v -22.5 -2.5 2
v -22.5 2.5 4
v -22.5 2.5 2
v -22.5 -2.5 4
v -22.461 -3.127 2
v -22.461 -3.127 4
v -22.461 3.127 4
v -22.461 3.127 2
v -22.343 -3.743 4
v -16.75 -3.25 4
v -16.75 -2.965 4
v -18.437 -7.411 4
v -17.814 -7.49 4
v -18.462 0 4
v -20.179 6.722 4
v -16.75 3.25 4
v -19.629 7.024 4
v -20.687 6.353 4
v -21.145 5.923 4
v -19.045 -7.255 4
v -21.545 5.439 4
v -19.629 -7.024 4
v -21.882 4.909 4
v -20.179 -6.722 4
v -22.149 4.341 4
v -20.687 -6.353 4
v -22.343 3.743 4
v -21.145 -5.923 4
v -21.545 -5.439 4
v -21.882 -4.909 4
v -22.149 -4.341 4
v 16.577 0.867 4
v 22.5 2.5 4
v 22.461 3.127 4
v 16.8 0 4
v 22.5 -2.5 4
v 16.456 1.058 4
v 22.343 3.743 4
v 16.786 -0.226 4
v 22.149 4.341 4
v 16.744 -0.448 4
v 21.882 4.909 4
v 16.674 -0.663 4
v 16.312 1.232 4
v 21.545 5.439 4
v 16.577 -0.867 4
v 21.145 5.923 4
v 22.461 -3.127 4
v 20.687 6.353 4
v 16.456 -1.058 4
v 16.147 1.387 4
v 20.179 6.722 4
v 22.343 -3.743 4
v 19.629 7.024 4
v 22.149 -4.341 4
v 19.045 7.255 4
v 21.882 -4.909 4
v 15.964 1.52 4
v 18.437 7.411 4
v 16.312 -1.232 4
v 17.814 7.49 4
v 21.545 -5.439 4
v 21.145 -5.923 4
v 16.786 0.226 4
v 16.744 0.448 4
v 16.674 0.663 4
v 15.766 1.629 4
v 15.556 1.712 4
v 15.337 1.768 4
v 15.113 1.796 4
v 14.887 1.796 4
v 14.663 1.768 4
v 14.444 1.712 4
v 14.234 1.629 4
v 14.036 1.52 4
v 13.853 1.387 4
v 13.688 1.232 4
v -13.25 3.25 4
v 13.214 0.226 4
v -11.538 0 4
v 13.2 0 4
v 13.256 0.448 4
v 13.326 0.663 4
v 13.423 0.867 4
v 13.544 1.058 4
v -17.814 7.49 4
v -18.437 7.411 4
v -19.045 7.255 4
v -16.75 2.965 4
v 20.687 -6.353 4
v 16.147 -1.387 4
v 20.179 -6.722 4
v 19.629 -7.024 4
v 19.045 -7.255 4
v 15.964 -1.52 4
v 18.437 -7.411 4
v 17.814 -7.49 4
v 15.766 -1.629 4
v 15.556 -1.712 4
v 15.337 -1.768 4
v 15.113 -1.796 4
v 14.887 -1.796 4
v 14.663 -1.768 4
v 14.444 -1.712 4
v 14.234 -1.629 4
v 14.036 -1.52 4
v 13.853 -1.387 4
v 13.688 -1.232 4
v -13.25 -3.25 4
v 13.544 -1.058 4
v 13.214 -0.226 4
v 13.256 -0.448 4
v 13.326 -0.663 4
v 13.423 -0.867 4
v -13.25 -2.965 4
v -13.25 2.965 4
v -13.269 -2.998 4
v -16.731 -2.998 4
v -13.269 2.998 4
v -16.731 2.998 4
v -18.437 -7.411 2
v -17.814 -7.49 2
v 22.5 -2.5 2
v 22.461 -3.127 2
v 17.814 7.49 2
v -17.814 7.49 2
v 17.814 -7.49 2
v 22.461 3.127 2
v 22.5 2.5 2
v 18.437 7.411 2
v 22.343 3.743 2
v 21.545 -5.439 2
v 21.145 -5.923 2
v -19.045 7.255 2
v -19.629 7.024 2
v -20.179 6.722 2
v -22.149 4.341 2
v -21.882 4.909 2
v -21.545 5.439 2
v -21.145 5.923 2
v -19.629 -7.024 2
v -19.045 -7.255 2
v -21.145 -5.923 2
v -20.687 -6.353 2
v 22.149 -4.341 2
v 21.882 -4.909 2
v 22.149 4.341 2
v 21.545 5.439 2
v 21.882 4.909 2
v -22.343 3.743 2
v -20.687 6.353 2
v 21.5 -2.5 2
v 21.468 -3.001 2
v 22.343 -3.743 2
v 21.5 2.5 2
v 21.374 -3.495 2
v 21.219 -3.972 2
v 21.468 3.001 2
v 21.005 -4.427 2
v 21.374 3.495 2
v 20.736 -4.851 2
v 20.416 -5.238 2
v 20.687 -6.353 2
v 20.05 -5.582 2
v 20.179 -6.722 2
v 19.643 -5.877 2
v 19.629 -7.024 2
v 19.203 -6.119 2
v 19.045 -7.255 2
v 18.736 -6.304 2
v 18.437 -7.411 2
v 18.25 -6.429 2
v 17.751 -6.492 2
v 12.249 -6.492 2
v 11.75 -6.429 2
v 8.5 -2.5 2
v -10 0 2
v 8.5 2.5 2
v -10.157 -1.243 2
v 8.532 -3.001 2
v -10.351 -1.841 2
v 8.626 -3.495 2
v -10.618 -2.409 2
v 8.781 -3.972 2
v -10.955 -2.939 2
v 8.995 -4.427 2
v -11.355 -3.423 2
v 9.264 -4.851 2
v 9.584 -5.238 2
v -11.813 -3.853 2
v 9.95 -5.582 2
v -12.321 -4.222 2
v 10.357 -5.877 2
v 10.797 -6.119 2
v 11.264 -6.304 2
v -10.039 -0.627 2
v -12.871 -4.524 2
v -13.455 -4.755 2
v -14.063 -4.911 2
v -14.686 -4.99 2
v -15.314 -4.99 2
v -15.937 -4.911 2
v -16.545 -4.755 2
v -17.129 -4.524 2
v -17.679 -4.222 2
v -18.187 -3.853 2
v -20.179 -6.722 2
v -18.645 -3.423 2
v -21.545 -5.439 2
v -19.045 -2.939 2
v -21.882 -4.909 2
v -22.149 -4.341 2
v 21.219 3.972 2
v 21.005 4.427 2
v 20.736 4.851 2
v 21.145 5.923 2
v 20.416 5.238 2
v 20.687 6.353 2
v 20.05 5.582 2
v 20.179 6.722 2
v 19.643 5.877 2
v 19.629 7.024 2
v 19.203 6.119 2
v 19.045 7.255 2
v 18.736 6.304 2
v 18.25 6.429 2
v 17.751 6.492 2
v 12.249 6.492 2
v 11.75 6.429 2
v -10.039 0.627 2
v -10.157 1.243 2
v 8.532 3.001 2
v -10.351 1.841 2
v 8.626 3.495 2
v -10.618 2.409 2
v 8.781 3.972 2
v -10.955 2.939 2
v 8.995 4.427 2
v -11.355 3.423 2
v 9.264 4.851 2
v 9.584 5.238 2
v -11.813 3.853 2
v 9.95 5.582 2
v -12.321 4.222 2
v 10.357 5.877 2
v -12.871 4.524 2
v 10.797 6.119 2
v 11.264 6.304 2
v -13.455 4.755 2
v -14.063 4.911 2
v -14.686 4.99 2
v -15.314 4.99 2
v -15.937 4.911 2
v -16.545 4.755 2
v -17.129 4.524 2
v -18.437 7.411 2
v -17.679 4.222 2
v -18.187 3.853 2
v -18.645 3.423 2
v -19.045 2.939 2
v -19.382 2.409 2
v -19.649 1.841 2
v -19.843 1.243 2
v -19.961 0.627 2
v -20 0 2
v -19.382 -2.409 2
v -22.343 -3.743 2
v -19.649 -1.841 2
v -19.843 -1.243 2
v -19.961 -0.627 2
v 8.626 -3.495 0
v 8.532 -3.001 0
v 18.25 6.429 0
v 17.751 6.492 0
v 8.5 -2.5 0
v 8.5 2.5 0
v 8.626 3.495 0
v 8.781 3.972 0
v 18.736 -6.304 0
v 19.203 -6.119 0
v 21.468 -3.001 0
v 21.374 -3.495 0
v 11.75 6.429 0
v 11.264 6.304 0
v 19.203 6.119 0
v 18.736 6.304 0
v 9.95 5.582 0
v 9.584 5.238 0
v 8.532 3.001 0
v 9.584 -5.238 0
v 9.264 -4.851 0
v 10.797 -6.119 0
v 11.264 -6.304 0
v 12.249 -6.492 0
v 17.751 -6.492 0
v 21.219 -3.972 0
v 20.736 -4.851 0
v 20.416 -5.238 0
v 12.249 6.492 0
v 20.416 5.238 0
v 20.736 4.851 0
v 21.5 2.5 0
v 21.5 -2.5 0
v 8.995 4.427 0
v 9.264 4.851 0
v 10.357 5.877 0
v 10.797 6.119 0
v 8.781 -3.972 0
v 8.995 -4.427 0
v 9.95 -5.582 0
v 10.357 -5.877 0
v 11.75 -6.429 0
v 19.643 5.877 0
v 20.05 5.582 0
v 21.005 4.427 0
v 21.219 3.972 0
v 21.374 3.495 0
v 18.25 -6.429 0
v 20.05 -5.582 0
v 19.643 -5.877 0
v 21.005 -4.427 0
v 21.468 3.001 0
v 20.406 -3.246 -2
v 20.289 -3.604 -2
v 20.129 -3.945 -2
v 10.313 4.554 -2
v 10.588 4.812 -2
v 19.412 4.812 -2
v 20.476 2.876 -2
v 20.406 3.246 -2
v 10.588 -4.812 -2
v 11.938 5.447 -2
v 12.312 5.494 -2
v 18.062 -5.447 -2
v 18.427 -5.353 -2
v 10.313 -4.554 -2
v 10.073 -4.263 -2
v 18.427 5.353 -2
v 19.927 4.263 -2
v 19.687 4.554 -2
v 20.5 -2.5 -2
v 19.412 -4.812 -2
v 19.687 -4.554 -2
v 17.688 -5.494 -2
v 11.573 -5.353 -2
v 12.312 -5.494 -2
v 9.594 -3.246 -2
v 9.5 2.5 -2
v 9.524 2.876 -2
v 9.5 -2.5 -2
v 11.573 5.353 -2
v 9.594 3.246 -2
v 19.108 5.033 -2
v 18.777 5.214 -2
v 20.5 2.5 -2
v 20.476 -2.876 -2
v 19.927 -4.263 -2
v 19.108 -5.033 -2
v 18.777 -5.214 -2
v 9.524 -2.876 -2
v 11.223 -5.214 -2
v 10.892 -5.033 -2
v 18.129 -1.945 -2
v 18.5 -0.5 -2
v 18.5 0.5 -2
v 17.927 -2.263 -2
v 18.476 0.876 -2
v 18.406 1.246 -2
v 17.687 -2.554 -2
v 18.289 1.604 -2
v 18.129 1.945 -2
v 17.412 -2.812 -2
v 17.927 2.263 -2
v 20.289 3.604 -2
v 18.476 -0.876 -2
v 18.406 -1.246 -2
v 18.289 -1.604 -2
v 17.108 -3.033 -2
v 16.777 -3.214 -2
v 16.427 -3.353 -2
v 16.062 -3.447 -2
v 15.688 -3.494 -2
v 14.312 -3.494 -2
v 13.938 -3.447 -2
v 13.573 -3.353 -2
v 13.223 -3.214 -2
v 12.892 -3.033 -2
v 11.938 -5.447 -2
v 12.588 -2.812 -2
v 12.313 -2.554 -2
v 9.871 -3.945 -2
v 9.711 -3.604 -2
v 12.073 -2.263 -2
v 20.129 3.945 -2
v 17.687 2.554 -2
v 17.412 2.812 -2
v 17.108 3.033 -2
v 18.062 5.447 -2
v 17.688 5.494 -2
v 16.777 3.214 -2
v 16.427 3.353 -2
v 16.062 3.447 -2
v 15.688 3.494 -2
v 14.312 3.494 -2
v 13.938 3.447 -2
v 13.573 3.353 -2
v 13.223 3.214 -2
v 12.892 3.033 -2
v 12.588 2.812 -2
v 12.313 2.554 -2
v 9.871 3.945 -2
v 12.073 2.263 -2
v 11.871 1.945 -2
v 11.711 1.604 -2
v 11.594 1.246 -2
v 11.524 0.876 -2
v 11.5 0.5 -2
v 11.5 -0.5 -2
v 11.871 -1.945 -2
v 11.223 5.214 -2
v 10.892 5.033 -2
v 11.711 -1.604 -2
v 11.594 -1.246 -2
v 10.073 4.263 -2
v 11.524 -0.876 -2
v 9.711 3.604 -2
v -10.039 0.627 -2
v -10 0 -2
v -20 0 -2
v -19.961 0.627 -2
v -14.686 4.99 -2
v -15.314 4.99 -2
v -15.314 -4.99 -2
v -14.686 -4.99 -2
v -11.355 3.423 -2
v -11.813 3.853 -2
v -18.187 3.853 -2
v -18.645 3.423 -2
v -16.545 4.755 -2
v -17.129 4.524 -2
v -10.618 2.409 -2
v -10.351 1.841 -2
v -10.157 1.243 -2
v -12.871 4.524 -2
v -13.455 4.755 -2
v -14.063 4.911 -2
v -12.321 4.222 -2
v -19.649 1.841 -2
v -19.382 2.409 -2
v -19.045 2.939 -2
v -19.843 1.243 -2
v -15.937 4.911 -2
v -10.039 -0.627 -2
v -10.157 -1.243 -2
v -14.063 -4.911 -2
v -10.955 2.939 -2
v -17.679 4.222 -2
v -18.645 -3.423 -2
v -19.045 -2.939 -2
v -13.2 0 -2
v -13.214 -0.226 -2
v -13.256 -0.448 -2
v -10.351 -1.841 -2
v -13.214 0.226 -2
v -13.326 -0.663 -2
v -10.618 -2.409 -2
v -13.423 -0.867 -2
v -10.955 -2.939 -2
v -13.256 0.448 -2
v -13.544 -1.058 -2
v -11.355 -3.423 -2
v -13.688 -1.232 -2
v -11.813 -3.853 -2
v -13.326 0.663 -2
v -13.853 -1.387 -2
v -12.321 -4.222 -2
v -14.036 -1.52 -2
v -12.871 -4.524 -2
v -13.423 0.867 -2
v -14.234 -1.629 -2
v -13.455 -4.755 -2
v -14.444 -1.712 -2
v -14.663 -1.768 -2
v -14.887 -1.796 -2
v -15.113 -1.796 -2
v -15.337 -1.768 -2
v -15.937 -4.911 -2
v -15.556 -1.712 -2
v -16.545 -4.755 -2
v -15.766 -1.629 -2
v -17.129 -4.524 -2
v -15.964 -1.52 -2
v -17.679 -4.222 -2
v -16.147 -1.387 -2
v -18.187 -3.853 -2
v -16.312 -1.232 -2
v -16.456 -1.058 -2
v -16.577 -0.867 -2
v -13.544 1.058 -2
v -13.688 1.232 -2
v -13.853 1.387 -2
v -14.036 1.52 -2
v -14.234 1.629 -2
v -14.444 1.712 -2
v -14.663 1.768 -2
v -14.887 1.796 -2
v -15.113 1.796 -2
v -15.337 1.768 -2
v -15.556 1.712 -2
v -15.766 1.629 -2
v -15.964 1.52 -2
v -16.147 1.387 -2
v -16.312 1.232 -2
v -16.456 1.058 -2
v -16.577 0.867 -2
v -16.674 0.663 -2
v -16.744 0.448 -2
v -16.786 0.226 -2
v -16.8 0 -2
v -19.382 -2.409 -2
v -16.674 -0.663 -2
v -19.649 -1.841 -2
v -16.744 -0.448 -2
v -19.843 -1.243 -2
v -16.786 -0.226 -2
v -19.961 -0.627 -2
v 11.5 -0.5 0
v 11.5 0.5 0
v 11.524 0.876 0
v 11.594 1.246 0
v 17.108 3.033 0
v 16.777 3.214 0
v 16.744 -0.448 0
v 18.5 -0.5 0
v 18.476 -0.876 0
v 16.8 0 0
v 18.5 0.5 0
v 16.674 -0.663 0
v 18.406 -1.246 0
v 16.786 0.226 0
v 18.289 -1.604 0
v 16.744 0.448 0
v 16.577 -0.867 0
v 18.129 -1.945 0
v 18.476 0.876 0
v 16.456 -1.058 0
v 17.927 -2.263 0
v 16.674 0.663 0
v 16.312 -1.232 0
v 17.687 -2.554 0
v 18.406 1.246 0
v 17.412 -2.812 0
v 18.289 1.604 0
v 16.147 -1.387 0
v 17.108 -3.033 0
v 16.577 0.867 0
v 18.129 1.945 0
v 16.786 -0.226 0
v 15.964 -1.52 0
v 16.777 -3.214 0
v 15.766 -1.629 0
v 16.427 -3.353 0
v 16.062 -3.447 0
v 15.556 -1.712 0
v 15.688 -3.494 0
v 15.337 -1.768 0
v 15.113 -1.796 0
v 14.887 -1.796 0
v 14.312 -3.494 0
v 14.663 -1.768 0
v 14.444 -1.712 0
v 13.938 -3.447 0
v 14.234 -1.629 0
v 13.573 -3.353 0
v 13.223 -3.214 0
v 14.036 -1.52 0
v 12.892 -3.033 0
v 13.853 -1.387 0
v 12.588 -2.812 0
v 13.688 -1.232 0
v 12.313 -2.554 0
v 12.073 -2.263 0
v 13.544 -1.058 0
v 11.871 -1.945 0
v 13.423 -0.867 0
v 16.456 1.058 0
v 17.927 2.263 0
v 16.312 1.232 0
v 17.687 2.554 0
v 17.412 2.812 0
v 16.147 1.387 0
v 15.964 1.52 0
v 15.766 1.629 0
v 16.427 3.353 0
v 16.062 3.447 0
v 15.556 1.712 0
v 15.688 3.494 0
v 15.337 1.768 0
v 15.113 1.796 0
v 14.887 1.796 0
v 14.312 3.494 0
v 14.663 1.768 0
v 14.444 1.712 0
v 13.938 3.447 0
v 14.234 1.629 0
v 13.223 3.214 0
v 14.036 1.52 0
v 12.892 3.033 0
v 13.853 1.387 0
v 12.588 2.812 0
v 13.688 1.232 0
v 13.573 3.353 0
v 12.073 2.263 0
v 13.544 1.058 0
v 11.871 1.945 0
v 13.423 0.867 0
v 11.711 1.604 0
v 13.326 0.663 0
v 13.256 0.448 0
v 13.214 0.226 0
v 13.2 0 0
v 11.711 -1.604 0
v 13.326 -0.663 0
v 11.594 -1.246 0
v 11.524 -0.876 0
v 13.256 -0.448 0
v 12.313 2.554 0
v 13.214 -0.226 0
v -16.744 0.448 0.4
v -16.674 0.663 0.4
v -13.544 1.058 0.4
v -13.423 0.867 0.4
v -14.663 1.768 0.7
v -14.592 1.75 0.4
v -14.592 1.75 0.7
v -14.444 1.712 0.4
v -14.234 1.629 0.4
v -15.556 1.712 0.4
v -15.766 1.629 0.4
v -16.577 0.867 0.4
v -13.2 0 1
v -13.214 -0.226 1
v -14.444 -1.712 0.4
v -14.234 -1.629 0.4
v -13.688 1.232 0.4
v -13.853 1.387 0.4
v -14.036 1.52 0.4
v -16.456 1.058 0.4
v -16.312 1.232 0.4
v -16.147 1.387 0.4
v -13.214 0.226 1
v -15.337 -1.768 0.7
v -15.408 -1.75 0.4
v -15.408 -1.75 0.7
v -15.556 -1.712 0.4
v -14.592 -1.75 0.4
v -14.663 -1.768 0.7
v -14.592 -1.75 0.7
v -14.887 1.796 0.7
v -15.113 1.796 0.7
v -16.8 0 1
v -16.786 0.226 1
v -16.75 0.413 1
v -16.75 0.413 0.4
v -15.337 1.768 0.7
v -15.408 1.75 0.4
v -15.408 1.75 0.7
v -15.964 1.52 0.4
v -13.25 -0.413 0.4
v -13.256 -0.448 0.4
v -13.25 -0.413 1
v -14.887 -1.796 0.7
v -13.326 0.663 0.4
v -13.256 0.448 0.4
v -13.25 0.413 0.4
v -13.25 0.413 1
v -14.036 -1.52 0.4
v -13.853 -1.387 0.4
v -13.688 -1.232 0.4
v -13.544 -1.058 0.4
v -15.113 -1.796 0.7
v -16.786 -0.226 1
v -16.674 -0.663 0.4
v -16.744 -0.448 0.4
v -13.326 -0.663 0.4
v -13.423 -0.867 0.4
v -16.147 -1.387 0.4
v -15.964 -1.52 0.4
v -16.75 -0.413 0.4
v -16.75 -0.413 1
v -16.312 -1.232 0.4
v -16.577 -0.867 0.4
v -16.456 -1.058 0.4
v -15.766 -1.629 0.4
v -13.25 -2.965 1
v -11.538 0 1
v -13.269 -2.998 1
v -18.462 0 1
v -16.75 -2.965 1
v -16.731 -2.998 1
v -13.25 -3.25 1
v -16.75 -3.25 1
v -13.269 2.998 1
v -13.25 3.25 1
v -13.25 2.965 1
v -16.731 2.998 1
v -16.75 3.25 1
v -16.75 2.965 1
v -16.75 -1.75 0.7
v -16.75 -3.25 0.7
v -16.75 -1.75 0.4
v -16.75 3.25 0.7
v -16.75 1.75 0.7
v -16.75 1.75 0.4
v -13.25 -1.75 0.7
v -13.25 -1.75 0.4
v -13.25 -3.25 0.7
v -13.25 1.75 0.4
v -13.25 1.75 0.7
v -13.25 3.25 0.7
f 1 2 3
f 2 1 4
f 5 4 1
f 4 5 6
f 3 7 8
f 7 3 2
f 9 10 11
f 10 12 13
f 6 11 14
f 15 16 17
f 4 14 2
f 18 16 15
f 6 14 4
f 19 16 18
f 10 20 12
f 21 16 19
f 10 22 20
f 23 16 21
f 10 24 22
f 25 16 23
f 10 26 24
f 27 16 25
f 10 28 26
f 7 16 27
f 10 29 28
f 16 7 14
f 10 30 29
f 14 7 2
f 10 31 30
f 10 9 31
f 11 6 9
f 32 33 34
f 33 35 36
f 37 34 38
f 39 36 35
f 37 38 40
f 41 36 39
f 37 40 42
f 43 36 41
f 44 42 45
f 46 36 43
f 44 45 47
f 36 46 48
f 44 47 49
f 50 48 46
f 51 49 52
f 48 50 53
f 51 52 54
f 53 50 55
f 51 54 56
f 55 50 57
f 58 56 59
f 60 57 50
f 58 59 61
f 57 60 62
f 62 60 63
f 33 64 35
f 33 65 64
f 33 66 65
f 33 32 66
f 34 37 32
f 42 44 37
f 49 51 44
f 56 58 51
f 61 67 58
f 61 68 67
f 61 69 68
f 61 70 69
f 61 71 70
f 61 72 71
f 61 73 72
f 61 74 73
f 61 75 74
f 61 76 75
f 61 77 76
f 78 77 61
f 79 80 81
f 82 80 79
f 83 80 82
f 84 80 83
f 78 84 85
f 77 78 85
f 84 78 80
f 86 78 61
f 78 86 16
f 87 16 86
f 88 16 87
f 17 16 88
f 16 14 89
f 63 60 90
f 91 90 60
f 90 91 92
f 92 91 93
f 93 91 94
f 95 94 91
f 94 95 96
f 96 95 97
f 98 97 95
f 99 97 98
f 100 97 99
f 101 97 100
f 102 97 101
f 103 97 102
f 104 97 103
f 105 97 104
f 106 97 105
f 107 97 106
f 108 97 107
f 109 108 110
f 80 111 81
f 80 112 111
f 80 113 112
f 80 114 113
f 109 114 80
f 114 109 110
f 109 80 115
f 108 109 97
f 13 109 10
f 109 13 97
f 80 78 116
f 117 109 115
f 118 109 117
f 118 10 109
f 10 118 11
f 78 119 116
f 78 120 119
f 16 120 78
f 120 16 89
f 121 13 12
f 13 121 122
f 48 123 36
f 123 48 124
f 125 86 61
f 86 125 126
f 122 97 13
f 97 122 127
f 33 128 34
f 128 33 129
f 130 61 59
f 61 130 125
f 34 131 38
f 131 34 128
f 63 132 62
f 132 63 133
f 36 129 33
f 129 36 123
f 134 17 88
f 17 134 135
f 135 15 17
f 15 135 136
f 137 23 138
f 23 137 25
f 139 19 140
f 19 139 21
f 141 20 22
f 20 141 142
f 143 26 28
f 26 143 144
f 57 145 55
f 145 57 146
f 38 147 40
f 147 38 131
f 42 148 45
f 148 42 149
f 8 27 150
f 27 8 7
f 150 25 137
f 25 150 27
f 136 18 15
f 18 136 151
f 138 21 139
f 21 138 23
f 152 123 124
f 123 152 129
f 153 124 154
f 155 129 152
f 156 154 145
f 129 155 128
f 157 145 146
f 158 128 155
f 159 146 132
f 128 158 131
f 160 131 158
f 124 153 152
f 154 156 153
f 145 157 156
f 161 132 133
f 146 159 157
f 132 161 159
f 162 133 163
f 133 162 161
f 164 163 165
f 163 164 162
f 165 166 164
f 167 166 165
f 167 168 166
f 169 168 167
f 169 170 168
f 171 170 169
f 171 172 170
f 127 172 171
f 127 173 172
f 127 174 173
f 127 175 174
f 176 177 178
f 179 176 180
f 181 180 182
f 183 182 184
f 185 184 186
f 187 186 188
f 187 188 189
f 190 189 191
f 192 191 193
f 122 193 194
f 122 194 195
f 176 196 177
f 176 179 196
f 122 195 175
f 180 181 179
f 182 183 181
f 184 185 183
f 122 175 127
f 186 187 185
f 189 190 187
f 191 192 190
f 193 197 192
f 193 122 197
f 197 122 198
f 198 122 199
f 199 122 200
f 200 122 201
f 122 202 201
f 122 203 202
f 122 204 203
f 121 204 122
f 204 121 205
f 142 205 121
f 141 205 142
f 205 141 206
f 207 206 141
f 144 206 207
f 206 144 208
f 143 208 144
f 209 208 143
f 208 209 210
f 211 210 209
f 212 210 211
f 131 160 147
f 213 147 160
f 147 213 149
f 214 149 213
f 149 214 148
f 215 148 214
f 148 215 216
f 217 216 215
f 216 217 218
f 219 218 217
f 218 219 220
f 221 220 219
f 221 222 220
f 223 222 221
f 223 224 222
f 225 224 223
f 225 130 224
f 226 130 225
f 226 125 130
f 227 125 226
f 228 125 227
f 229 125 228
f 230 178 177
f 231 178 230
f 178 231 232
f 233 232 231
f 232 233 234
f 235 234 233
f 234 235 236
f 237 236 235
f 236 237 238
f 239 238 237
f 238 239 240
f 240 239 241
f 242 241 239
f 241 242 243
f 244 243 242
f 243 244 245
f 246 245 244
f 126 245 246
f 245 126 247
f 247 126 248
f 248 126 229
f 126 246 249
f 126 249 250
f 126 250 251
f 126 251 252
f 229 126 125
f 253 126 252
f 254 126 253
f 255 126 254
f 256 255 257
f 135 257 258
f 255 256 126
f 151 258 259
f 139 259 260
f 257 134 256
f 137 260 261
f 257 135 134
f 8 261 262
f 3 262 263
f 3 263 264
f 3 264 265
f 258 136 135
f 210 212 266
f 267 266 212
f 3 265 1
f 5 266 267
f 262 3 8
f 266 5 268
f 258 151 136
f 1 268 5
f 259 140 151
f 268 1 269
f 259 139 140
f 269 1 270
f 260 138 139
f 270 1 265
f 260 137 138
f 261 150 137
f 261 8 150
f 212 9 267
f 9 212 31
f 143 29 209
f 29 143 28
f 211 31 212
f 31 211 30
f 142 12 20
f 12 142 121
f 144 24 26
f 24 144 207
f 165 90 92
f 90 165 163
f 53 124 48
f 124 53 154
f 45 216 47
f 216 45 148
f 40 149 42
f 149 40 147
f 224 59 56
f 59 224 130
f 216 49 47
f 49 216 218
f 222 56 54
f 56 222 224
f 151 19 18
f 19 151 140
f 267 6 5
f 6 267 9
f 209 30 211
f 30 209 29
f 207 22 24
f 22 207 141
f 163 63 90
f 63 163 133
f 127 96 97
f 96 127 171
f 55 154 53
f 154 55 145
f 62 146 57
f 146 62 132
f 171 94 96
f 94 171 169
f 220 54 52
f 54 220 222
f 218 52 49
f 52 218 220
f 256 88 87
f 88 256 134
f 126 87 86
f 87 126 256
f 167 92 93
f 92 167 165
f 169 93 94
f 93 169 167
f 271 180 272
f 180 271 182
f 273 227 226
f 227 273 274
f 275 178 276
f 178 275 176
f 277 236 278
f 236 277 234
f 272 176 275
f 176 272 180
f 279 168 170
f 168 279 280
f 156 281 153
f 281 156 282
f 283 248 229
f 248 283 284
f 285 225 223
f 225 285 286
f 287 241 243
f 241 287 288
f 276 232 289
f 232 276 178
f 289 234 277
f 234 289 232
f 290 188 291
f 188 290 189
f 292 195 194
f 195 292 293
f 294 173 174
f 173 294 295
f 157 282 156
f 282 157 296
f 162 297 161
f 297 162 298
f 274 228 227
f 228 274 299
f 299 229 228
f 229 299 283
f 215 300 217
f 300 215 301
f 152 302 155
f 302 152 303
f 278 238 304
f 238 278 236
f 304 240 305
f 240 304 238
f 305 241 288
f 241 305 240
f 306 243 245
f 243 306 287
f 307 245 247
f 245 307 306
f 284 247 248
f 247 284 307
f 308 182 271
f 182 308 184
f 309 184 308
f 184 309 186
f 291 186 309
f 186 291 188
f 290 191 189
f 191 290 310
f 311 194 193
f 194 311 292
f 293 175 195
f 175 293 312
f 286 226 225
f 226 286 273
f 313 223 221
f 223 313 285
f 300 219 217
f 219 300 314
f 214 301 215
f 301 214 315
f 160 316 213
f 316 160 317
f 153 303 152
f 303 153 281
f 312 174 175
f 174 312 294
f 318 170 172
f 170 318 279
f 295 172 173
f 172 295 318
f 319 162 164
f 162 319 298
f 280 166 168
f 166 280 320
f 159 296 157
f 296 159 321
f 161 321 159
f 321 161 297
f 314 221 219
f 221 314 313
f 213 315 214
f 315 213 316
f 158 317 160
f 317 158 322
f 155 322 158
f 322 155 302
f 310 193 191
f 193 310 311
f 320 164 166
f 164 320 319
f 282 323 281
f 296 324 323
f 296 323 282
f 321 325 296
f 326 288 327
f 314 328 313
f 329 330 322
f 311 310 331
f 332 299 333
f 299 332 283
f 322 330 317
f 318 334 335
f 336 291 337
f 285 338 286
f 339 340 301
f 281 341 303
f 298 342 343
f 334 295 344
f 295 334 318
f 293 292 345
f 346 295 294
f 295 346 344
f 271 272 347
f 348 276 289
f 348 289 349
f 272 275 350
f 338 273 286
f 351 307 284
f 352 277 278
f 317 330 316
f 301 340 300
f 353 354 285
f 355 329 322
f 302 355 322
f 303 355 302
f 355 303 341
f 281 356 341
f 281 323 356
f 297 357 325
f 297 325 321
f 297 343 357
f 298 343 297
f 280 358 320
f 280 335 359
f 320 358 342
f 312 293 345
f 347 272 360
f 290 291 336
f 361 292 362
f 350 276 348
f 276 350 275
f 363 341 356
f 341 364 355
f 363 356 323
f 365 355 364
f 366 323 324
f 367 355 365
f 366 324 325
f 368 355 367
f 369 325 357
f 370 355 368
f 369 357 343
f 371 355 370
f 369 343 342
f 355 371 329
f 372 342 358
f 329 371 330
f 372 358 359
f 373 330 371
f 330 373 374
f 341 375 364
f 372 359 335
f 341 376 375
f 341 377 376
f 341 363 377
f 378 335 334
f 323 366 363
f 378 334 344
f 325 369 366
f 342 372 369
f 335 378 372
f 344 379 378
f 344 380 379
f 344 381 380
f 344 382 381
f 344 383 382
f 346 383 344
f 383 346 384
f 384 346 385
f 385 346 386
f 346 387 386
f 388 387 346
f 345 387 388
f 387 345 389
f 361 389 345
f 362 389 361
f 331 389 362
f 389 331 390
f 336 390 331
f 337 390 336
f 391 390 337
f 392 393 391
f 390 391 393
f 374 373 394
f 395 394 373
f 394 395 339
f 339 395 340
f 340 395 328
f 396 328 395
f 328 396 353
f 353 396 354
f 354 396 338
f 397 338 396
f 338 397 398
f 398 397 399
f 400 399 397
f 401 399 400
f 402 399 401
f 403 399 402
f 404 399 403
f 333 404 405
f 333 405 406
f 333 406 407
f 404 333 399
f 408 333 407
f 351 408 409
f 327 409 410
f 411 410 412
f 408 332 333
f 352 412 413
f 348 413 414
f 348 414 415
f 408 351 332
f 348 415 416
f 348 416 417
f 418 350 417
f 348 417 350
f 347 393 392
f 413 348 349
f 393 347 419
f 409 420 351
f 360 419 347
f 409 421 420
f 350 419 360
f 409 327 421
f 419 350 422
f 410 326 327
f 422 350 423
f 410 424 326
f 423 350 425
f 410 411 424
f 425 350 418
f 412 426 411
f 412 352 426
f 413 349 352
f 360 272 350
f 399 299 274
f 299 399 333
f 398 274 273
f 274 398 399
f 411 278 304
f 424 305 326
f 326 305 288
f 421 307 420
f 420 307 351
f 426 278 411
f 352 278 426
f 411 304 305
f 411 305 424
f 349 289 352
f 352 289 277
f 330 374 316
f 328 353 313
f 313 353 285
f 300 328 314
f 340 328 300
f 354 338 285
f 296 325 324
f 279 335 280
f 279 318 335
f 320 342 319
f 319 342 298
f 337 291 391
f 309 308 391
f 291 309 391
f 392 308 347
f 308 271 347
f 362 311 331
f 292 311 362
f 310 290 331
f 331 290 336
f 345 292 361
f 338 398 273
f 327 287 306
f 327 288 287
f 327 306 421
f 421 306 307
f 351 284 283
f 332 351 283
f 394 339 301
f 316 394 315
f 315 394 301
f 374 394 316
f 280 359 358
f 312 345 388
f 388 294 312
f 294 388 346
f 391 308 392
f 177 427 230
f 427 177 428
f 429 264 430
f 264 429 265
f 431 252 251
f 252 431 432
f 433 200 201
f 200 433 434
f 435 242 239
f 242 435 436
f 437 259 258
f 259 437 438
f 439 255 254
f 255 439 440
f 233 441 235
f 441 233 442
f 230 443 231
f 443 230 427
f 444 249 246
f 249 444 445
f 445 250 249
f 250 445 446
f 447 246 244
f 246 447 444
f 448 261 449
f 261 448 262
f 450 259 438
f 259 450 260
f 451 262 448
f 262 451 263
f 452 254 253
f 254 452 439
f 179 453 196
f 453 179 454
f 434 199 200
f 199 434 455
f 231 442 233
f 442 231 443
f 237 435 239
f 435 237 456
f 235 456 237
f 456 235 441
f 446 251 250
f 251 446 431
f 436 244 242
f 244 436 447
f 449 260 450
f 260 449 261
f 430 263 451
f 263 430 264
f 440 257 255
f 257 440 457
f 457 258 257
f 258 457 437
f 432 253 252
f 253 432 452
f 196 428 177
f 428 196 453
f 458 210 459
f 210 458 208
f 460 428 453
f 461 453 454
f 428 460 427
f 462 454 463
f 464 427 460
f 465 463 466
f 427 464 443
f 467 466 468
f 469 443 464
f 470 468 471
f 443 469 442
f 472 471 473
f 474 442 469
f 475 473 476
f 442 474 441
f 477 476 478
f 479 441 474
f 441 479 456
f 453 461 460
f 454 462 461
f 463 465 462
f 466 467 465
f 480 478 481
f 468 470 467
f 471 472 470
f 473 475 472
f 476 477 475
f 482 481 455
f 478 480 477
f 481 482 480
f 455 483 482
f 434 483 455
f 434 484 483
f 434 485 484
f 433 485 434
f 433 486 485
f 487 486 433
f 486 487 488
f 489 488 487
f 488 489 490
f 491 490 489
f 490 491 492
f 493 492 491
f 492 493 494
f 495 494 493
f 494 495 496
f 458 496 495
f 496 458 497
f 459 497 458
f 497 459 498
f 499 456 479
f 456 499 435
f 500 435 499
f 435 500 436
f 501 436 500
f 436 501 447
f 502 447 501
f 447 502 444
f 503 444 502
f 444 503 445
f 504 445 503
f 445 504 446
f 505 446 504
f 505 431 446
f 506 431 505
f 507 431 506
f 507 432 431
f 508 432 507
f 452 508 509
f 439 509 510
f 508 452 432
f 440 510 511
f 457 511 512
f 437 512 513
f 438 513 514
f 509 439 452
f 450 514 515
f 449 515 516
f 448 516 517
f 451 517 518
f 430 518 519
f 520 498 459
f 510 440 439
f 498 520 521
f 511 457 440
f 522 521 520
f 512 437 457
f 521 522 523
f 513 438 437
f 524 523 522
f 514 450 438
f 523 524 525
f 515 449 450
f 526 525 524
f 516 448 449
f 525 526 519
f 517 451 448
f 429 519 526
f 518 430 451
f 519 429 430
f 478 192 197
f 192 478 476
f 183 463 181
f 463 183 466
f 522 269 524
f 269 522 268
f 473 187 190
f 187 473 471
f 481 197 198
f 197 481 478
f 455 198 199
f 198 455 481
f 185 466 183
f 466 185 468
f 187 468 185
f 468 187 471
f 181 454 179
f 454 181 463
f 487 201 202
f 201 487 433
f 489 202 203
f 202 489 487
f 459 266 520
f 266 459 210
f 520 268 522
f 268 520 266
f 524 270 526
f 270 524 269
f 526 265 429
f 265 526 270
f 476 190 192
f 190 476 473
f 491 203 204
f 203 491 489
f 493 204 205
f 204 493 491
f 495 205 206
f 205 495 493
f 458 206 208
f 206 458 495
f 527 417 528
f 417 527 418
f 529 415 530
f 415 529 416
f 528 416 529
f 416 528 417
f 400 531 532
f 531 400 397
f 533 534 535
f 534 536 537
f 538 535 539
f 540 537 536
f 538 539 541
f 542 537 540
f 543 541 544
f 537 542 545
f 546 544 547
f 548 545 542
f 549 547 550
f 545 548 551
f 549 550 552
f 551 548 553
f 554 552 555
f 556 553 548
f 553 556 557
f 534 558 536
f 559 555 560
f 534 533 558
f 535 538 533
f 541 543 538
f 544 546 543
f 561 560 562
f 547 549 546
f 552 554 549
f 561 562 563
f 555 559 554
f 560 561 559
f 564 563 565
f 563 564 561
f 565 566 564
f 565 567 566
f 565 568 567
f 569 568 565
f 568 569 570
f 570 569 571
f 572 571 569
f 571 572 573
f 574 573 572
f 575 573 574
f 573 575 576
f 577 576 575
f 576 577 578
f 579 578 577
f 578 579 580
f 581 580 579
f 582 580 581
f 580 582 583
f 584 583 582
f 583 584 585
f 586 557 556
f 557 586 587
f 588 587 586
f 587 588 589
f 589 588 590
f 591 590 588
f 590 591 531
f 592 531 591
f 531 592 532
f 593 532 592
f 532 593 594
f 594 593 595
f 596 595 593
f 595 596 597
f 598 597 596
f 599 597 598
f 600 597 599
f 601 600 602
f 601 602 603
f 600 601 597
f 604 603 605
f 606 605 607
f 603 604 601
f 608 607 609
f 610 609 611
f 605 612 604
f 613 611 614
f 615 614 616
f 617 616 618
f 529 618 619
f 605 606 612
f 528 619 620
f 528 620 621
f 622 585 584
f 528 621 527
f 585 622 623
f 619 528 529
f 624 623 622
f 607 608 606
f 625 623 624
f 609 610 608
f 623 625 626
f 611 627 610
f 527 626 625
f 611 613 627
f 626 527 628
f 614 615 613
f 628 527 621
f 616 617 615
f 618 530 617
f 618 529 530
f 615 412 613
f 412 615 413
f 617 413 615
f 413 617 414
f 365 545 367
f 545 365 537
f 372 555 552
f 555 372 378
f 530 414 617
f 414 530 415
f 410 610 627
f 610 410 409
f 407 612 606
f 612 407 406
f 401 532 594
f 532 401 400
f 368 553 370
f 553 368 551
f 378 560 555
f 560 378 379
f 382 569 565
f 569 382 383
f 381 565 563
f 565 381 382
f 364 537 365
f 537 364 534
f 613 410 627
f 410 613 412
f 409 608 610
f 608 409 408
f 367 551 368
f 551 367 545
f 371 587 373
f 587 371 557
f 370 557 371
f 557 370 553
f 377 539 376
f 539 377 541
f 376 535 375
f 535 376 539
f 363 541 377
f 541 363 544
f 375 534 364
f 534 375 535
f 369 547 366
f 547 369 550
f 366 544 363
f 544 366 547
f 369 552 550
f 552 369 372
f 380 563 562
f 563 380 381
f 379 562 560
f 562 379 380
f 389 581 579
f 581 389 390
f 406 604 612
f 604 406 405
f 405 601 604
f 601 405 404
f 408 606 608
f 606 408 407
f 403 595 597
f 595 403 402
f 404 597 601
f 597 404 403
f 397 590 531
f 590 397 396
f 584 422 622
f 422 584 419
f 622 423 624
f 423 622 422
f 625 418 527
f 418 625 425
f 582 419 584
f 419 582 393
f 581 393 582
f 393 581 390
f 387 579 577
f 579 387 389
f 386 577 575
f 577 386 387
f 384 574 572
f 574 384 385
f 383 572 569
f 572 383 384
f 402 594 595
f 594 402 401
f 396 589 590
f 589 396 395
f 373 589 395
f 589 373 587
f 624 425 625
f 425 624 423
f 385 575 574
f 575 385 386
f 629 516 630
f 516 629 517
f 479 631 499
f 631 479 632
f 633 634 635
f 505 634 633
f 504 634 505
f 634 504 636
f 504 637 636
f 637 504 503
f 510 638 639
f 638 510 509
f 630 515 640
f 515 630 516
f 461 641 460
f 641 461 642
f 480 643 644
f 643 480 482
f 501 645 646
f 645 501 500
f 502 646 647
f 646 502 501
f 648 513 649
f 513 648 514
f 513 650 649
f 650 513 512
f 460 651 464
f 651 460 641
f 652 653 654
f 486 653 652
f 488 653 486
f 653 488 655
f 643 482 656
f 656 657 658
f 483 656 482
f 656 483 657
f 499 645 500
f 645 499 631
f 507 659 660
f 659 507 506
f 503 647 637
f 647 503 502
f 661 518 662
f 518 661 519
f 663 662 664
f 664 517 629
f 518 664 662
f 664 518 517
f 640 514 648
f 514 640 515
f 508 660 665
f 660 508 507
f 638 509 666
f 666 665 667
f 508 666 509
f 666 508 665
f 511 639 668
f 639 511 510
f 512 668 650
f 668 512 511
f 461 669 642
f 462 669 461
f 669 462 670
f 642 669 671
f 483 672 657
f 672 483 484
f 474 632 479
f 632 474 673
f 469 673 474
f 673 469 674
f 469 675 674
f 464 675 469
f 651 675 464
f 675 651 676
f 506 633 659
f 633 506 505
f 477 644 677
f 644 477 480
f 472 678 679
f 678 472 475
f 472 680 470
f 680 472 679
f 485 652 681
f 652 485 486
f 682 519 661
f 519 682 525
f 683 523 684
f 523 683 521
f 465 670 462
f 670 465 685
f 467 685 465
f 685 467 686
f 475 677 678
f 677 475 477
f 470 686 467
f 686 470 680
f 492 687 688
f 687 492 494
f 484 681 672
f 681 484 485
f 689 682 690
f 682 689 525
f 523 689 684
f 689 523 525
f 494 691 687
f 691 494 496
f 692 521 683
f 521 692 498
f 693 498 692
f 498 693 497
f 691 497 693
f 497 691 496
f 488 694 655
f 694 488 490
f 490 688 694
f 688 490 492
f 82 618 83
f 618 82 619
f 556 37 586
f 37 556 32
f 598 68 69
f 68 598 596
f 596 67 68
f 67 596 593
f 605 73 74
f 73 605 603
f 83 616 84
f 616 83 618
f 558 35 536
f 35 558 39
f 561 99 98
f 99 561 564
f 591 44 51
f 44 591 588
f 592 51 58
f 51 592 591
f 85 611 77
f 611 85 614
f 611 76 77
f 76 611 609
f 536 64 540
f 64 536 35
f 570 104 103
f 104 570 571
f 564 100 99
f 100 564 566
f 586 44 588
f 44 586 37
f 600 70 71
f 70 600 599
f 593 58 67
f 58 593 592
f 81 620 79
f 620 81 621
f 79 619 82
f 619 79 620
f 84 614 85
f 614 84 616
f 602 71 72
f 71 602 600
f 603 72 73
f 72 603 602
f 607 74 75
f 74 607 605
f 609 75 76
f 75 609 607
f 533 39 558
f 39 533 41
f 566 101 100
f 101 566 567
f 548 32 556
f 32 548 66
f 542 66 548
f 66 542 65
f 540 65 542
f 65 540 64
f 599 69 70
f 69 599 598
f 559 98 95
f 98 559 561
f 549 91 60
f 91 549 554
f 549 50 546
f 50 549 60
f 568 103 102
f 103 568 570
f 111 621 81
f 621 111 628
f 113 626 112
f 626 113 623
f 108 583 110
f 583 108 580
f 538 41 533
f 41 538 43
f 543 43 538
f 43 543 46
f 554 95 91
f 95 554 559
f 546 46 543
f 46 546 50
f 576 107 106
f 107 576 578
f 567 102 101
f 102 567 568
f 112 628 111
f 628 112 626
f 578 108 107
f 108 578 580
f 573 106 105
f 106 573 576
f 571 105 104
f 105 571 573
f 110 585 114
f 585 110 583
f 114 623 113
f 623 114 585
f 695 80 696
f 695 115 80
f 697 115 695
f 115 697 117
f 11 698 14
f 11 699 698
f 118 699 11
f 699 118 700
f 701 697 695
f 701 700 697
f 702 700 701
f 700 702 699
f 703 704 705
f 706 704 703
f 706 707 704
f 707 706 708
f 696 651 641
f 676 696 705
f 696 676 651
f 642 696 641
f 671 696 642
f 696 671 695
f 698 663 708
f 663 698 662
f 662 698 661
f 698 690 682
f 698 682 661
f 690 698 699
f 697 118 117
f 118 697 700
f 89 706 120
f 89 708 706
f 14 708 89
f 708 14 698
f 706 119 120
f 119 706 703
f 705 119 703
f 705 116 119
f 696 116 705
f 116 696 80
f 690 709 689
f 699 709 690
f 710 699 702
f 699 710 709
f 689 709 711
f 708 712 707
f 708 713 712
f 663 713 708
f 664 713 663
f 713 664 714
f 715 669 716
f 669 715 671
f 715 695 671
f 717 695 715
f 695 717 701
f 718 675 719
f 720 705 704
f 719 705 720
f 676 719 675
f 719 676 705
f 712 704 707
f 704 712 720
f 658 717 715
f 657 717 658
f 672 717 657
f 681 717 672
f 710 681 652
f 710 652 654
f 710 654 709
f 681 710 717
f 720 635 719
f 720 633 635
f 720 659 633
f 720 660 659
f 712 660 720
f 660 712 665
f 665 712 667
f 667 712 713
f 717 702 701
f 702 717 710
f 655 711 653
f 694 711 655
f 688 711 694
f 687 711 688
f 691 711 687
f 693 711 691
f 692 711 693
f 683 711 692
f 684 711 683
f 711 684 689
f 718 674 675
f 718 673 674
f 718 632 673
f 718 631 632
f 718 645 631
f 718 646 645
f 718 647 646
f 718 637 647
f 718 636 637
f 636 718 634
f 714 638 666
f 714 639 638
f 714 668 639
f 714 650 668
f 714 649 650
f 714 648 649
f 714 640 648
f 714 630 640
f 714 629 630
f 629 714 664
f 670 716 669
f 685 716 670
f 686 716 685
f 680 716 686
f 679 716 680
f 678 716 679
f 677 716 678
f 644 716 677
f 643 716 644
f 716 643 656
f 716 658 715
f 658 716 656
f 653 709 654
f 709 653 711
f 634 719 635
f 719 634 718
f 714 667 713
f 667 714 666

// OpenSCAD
$fn = 50;


difference() {
	union() {
		translate(v = [0, 0, 2]) {
			rotate(a = [0, 0, 0]) {
				hull() {
					translate(v = [-17.5000000000, 2.5000000000, 0]) {
						rotate(a = [0, 0, 0]) {
							translate(v = [0, 0, 0]) {
								rotate(a = [0, 0, 0]) {
									cylinder(h = 2, r = 5);
								}
							}
						}
					}
					translate(v = [17.5000000000, 2.5000000000, 0]) {
						rotate(a = [0, 0, 0]) {
							translate(v = [0, 0, 0]) {
								rotate(a = [0, 0, 0]) {
									cylinder(h = 2, r = 5);
								}
							}
						}
					}
					translate(v = [-17.5000000000, -2.5000000000, 0]) {
						rotate(a = [0, 0, 0]) {
							translate(v = [0, 0, 0]) {
								rotate(a = [0, 0, 0]) {
									cylinder(h = 2, r = 5);
								}
							}
						}
					}
					translate(v = [17.5000000000, -2.5000000000, 0]) {
						rotate(a = [0, 0, 0]) {
							translate(v = [0, 0, 0]) {
								rotate(a = [0, 0, 0]) {
									cylinder(h = 2, r = 5);
								}
							}
						}
					}
				}
			}
		}
		translate(v = [15.0000000000, 0.0000000000, 0]) {
			rotate(a = [0, 0, 0]) {
				hull() {
					translate(v = [-2.5000000000, 2.5000000000, 0]) {
						rotate(a = [0, 0, 0]) {
							cylinder(h = 2, r1 = 4.0000000000, r2 = 4.0000000000);
						}
					}
					translate(v = [2.5000000000, 2.5000000000, 0]) {
						rotate(a = [0, 0, 0]) {
							cylinder(h = 2, r1 = 4.0000000000, r2 = 4.0000000000);
						}
					}
					translate(v = [-2.5000000000, -2.5000000000, 0]) {
						rotate(a = [0, 0, 0]) {
							cylinder(h = 2, r1 = 4.0000000000, r2 = 4.0000000000);
						}
					}
					translate(v = [2.5000000000, -2.5000000000, 0]) {
						rotate(a = [0, 0, 0]) {
							cylinder(h = 2, r1 = 4.0000000000, r2 = 4.0000000000);
						}
					}
				}
			}
		}
		translate(v = [15.0000000000, 0.0000000000, -2]) {
			rotate(a = [0, 180, 0]) {
				hull() {
					translate(v = [-2.5000000000, 2.5000000000, 0]) {
						rotate(a = [0, 180, 0]) {
							cylinder(h = 2, r1 = 3.0000000000, r2 = 4.0000000000);
						}
					}
					translate(v = [2.5000000000, 2.5000000000, 0]) {
						rotate(a = [0, 180, 0]) {
							cylinder(h = 2, r1 = 3.0000000000, r2 = 4.0000000000);
						}
					}
					translate(v = [-2.5000000000, -2.5000000000, 0]) {
						rotate(a = [0, 180, 0]) {
							cylinder(h = 2, r1 = 3.0000000000, r2 = 4.0000000000);
						}
					}
					translate(v = [2.5000000000, -2.5000000000, 0]) {
						rotate(a = [0, 180, 0]) {
							cylinder(h = 2, r1 = 3.0000000000, r2 = 4.0000000000);
						}
					}
				}
			}
		}
		translate(v = [-15.0000000000, 0.0000000000, -2.0000000000]) {
			rotate(a = [0, 0, 0]) {
				cylinder(h = 4, r = 5);
			}
		}
	}
	union() {
		translate(v = [15.0000000000, 0.0000000000, -2]) {
			rotate(a = [0, 0, 0]) {
				hull() {
					translate(v = [-0.5000000000, 0.5000000000, 0]) {
						rotate(a = [0, 0, 0]) {
							translate(v = [0, 0, 0]) {
								rotate(a = [0, 0, 0]) {
									cylinder(h = 2, r = 3.0000000000);
								}
							}
						}
					}
					translate(v = [0.5000000000, 0.5000000000, 0]) {
						rotate(a = [0, 0, 0]) {
							translate(v = [0, 0, 0]) {
								rotate(a = [0, 0, 0]) {
									cylinder(h = 2, r = 3.0000000000);
								}
							}
						}
					}
					translate(v = [-0.5000000000, -0.5000000000, 0]) {
						rotate(a = [0, 0, 0]) {
							translate(v = [0, 0, 0]) {
								rotate(a = [0, 0, 0]) {
									cylinder(h = 2, r = 3.0000000000);
								}
							}
						}
					}
					translate(v = [0.5000000000, -0.5000000000, 0]) {
						rotate(a = [0, 0, 0]) {
							translate(v = [0, 0, 0]) {
								rotate(a = [0, 0, 0]) {
									cylinder(h = 2, r = 3.0000000000);
								}
							}
						}
					}
				}
			}
		}
		translate(v = [-15.0000000000, 0.0000000000, -50]) {
			rotate(a = [0, 0, 0]) {
				cylinder(h = 100, r = 1.8000000000);
			}
		}
		translate(v = [15.0000000000, 0.0000000000, -50]) {
			rotate(a = [0, 0, 0]) {
				cylinder(h = 100, r = 1.8000000000);
			}
		}
		translate(v = [-15.0000000000, 0.0000000000, -50]) {
			rotate(a = [0, 0, 0]) {
				cylinder(h = 100, r = 1.8000000000);
			}
		}
		translate(v = [15.0000000000, 0.0000000000, -50]) {
			rotate(a = [0, 0, 0]) {
				cylinder(h = 100, r = 1.8000000000);
			}
		}
		translate(v = [-15.0000000000, 0.0000000000, 1]) {
			rotate(a = [0, 0, 0]) {
				#translate(v = [0, 0, 0]) {
					rotate(a = [0, 0, 0]) {
						linear_extrude(height = 3) {
							polygon(points = [[3.4620000000, 0.0000000000], [1.7310000000, 2.9981799479], [-1.7310000000, 2.9981799479], [-3.4620000000, 0.0000000000], [-1.7310000000, -2.9981799479], [1.7310000000, -2.9981799479]]);
						}
					}
				}
			}
		}
		#translate(v = [-16.7500000000, -3.2500000000, 4]) {
			rotate(a = [0, 0, 0]) {
				cube(size = [3.5000000000, 6.5000000000, 0.3000000000]);
			}
		}
		#translate(v = [-16.7500000000, -1.7500000000, 4.3000000000]) {
			rotate(a = [0, 0, 0]) {
				cube(size = [3.5000000000, 3.5000000000, 0.3000000000]);
			}
		}
		#translate(v = [-16.7500000000, -3.2500000000, 0.7000000000]) {
			rotate(a = [0, 0, 0]) {
				cube(size = [3.5000000000, 6.5000000000, 0.3000000000]);
			}
		}
		#translate(v = [-16.7500000000, -1.7500000000, 0.4000000000]) {
			rotate(a = [0, 0, 0]) {
				cube(size = [3.5000000000, 3.5000000000, 0.3000000000]);
			}
		}
	}
}
